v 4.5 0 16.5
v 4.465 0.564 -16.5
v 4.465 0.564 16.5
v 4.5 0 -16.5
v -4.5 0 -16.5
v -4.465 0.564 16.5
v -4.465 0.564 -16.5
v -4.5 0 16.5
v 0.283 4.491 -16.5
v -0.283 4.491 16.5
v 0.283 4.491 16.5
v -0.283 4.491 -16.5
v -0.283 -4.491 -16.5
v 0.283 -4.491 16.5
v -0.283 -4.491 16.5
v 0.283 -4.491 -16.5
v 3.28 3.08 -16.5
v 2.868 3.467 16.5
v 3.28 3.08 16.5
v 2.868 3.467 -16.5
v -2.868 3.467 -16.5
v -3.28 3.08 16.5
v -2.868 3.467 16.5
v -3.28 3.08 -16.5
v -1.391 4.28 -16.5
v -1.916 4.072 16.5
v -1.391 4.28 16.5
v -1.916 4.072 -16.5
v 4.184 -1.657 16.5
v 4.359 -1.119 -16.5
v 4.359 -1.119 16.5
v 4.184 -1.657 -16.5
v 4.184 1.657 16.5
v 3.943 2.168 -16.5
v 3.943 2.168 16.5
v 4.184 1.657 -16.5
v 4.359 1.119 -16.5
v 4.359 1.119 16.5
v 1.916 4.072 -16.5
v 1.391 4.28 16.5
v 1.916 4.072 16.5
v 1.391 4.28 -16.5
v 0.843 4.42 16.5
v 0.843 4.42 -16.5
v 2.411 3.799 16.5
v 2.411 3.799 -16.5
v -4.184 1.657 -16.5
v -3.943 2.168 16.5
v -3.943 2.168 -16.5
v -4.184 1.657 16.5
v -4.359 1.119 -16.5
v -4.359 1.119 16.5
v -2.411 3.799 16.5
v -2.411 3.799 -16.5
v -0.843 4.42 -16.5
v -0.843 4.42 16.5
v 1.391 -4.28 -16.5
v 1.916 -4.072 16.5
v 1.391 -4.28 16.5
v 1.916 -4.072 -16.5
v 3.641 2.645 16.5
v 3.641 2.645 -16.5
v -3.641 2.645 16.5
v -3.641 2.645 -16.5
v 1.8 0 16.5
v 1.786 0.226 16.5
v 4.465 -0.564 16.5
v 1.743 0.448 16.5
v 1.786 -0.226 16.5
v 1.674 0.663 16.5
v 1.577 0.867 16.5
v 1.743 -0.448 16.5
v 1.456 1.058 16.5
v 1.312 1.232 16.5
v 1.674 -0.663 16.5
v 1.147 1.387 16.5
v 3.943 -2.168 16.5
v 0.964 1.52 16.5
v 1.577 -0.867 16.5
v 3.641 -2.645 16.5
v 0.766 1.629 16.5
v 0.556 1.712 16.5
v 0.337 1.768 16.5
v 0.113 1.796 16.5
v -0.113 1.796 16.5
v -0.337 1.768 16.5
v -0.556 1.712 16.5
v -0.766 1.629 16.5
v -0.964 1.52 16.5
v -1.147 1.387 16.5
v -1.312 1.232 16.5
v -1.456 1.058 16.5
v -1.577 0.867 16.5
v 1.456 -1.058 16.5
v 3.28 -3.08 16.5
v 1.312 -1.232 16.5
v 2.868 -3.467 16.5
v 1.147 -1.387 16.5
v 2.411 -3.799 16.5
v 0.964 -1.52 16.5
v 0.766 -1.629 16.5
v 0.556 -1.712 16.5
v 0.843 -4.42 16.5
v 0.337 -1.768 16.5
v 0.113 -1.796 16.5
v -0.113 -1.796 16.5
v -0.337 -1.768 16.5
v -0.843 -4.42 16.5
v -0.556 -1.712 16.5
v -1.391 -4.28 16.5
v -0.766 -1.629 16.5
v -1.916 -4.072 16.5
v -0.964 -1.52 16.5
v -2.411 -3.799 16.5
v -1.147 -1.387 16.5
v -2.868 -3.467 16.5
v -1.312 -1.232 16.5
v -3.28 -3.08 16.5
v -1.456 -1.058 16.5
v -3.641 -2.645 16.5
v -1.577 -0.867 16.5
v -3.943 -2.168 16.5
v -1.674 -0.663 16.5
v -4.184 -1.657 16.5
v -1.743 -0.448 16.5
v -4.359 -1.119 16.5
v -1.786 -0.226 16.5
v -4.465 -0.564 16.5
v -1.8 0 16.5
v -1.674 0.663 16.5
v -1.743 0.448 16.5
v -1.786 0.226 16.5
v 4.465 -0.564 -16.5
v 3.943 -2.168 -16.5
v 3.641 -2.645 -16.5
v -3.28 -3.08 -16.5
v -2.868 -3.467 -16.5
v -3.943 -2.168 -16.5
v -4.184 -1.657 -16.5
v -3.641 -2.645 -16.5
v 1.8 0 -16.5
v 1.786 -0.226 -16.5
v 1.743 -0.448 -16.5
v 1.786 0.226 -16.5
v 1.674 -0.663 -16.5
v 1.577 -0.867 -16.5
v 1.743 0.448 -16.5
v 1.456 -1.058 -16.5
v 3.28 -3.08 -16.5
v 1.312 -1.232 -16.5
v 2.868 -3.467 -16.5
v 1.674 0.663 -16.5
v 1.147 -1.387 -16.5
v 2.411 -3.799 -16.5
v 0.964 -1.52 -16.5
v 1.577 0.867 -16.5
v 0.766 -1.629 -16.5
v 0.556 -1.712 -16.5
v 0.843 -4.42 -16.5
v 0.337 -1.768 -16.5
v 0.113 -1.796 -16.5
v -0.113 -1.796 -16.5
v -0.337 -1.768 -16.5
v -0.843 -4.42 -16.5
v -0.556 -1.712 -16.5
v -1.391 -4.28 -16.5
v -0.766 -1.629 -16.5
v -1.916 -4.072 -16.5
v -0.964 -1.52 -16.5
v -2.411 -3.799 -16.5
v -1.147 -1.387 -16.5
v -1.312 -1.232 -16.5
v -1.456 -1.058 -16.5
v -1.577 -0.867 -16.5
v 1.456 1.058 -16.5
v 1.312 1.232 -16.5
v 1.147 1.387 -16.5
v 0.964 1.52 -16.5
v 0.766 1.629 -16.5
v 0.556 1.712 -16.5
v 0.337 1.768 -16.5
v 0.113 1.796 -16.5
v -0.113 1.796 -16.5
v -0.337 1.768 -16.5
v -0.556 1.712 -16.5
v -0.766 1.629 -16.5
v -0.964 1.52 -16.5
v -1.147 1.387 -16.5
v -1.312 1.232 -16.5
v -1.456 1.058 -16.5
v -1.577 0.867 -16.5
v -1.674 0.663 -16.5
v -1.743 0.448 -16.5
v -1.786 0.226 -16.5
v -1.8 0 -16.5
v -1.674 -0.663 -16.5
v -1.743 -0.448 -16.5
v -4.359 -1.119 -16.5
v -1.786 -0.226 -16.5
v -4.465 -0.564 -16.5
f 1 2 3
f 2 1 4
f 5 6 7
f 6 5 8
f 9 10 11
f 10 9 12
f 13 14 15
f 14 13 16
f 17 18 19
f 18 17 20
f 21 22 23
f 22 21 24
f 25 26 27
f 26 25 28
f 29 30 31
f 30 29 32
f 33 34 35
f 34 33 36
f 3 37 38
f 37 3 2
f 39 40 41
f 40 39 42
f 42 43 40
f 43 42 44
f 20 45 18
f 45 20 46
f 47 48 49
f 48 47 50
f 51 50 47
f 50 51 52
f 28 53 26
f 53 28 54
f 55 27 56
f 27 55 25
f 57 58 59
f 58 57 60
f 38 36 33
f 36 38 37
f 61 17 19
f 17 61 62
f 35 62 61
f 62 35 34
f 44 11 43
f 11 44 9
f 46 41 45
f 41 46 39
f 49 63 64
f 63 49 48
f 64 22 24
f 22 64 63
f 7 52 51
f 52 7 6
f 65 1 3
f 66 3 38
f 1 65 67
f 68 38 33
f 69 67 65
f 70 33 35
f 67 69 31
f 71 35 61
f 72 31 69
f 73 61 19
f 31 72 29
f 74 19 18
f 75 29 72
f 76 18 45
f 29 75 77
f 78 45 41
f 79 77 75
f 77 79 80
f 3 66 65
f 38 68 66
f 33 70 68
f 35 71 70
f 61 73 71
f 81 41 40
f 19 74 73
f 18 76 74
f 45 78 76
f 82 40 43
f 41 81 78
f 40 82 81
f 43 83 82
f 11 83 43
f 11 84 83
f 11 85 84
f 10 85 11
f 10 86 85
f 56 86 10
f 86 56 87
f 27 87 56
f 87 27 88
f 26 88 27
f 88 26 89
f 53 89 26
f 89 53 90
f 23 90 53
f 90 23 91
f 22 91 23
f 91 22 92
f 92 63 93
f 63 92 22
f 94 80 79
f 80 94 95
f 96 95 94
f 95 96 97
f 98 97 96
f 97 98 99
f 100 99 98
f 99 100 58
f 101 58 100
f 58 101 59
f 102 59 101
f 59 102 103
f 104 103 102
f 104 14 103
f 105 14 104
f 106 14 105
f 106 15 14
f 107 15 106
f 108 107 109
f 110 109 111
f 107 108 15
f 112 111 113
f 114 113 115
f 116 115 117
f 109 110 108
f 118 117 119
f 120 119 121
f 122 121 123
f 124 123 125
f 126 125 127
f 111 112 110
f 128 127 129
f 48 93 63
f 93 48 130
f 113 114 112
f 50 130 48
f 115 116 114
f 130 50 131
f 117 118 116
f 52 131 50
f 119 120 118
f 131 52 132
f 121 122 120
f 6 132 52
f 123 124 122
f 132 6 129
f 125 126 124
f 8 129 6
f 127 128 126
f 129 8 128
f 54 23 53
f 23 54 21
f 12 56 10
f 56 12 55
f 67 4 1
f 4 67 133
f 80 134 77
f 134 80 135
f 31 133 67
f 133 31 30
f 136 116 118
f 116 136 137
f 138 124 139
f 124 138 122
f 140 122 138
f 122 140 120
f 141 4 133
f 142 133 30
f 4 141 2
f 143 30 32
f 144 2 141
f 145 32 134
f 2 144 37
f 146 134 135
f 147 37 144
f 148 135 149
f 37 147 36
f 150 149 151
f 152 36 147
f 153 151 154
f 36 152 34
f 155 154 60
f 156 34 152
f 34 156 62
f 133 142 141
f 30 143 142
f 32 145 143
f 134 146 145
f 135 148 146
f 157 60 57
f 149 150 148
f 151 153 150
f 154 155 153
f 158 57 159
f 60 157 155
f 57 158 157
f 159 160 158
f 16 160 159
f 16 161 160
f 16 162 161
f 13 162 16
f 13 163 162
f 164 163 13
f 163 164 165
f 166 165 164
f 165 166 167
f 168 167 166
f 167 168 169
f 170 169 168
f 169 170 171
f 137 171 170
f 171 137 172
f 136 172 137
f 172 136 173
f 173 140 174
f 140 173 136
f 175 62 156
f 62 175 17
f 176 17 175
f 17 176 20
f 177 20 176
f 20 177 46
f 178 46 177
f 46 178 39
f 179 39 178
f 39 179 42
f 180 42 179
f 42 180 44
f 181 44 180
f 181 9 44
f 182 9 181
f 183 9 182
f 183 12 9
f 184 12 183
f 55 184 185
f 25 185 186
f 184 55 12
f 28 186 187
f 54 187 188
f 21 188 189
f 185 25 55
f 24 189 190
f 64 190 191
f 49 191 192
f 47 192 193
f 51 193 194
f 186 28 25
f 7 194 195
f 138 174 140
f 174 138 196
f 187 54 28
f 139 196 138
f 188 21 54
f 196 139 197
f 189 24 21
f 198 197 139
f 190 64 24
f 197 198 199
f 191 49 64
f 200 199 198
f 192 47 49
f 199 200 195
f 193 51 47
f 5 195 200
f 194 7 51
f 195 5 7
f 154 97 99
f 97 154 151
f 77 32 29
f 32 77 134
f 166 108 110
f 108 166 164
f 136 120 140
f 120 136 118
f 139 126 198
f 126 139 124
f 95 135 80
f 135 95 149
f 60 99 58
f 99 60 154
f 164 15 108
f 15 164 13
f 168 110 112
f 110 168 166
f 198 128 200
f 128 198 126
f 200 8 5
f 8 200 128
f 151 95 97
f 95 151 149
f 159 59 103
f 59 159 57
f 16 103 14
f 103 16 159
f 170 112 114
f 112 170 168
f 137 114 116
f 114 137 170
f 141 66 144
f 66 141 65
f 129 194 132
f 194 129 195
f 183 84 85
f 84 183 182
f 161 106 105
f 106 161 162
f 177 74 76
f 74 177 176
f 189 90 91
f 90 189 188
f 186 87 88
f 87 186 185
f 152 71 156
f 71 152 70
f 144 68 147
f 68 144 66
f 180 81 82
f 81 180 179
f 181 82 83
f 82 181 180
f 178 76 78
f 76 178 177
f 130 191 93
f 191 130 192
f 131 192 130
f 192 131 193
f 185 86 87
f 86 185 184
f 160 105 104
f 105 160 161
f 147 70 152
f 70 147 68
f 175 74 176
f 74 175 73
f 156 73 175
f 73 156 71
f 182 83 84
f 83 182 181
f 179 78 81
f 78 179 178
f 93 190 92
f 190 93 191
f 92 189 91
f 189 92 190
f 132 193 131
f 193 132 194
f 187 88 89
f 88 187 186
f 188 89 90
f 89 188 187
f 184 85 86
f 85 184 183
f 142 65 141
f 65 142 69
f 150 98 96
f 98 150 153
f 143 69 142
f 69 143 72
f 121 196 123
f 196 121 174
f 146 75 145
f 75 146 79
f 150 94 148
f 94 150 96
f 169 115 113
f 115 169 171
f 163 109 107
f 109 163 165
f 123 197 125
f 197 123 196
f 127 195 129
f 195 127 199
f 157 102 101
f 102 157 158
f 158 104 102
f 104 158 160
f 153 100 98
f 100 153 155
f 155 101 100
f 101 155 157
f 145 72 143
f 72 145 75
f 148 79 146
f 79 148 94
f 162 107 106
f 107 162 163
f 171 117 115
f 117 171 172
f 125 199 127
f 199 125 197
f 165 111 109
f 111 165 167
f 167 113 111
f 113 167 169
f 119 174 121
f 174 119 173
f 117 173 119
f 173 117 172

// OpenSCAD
$fn = 50;


difference() {
	union() {
		translate(v = [0, 0, -16.5000000000]) {
			cylinder(h = 33, r = 4.5000000000);
		}
	}
	union() {
		#translate(v = [0, 0, -100.0000000000]) {
			cylinder(h = 200, r = 1.8000000000);
		}
	}
}
